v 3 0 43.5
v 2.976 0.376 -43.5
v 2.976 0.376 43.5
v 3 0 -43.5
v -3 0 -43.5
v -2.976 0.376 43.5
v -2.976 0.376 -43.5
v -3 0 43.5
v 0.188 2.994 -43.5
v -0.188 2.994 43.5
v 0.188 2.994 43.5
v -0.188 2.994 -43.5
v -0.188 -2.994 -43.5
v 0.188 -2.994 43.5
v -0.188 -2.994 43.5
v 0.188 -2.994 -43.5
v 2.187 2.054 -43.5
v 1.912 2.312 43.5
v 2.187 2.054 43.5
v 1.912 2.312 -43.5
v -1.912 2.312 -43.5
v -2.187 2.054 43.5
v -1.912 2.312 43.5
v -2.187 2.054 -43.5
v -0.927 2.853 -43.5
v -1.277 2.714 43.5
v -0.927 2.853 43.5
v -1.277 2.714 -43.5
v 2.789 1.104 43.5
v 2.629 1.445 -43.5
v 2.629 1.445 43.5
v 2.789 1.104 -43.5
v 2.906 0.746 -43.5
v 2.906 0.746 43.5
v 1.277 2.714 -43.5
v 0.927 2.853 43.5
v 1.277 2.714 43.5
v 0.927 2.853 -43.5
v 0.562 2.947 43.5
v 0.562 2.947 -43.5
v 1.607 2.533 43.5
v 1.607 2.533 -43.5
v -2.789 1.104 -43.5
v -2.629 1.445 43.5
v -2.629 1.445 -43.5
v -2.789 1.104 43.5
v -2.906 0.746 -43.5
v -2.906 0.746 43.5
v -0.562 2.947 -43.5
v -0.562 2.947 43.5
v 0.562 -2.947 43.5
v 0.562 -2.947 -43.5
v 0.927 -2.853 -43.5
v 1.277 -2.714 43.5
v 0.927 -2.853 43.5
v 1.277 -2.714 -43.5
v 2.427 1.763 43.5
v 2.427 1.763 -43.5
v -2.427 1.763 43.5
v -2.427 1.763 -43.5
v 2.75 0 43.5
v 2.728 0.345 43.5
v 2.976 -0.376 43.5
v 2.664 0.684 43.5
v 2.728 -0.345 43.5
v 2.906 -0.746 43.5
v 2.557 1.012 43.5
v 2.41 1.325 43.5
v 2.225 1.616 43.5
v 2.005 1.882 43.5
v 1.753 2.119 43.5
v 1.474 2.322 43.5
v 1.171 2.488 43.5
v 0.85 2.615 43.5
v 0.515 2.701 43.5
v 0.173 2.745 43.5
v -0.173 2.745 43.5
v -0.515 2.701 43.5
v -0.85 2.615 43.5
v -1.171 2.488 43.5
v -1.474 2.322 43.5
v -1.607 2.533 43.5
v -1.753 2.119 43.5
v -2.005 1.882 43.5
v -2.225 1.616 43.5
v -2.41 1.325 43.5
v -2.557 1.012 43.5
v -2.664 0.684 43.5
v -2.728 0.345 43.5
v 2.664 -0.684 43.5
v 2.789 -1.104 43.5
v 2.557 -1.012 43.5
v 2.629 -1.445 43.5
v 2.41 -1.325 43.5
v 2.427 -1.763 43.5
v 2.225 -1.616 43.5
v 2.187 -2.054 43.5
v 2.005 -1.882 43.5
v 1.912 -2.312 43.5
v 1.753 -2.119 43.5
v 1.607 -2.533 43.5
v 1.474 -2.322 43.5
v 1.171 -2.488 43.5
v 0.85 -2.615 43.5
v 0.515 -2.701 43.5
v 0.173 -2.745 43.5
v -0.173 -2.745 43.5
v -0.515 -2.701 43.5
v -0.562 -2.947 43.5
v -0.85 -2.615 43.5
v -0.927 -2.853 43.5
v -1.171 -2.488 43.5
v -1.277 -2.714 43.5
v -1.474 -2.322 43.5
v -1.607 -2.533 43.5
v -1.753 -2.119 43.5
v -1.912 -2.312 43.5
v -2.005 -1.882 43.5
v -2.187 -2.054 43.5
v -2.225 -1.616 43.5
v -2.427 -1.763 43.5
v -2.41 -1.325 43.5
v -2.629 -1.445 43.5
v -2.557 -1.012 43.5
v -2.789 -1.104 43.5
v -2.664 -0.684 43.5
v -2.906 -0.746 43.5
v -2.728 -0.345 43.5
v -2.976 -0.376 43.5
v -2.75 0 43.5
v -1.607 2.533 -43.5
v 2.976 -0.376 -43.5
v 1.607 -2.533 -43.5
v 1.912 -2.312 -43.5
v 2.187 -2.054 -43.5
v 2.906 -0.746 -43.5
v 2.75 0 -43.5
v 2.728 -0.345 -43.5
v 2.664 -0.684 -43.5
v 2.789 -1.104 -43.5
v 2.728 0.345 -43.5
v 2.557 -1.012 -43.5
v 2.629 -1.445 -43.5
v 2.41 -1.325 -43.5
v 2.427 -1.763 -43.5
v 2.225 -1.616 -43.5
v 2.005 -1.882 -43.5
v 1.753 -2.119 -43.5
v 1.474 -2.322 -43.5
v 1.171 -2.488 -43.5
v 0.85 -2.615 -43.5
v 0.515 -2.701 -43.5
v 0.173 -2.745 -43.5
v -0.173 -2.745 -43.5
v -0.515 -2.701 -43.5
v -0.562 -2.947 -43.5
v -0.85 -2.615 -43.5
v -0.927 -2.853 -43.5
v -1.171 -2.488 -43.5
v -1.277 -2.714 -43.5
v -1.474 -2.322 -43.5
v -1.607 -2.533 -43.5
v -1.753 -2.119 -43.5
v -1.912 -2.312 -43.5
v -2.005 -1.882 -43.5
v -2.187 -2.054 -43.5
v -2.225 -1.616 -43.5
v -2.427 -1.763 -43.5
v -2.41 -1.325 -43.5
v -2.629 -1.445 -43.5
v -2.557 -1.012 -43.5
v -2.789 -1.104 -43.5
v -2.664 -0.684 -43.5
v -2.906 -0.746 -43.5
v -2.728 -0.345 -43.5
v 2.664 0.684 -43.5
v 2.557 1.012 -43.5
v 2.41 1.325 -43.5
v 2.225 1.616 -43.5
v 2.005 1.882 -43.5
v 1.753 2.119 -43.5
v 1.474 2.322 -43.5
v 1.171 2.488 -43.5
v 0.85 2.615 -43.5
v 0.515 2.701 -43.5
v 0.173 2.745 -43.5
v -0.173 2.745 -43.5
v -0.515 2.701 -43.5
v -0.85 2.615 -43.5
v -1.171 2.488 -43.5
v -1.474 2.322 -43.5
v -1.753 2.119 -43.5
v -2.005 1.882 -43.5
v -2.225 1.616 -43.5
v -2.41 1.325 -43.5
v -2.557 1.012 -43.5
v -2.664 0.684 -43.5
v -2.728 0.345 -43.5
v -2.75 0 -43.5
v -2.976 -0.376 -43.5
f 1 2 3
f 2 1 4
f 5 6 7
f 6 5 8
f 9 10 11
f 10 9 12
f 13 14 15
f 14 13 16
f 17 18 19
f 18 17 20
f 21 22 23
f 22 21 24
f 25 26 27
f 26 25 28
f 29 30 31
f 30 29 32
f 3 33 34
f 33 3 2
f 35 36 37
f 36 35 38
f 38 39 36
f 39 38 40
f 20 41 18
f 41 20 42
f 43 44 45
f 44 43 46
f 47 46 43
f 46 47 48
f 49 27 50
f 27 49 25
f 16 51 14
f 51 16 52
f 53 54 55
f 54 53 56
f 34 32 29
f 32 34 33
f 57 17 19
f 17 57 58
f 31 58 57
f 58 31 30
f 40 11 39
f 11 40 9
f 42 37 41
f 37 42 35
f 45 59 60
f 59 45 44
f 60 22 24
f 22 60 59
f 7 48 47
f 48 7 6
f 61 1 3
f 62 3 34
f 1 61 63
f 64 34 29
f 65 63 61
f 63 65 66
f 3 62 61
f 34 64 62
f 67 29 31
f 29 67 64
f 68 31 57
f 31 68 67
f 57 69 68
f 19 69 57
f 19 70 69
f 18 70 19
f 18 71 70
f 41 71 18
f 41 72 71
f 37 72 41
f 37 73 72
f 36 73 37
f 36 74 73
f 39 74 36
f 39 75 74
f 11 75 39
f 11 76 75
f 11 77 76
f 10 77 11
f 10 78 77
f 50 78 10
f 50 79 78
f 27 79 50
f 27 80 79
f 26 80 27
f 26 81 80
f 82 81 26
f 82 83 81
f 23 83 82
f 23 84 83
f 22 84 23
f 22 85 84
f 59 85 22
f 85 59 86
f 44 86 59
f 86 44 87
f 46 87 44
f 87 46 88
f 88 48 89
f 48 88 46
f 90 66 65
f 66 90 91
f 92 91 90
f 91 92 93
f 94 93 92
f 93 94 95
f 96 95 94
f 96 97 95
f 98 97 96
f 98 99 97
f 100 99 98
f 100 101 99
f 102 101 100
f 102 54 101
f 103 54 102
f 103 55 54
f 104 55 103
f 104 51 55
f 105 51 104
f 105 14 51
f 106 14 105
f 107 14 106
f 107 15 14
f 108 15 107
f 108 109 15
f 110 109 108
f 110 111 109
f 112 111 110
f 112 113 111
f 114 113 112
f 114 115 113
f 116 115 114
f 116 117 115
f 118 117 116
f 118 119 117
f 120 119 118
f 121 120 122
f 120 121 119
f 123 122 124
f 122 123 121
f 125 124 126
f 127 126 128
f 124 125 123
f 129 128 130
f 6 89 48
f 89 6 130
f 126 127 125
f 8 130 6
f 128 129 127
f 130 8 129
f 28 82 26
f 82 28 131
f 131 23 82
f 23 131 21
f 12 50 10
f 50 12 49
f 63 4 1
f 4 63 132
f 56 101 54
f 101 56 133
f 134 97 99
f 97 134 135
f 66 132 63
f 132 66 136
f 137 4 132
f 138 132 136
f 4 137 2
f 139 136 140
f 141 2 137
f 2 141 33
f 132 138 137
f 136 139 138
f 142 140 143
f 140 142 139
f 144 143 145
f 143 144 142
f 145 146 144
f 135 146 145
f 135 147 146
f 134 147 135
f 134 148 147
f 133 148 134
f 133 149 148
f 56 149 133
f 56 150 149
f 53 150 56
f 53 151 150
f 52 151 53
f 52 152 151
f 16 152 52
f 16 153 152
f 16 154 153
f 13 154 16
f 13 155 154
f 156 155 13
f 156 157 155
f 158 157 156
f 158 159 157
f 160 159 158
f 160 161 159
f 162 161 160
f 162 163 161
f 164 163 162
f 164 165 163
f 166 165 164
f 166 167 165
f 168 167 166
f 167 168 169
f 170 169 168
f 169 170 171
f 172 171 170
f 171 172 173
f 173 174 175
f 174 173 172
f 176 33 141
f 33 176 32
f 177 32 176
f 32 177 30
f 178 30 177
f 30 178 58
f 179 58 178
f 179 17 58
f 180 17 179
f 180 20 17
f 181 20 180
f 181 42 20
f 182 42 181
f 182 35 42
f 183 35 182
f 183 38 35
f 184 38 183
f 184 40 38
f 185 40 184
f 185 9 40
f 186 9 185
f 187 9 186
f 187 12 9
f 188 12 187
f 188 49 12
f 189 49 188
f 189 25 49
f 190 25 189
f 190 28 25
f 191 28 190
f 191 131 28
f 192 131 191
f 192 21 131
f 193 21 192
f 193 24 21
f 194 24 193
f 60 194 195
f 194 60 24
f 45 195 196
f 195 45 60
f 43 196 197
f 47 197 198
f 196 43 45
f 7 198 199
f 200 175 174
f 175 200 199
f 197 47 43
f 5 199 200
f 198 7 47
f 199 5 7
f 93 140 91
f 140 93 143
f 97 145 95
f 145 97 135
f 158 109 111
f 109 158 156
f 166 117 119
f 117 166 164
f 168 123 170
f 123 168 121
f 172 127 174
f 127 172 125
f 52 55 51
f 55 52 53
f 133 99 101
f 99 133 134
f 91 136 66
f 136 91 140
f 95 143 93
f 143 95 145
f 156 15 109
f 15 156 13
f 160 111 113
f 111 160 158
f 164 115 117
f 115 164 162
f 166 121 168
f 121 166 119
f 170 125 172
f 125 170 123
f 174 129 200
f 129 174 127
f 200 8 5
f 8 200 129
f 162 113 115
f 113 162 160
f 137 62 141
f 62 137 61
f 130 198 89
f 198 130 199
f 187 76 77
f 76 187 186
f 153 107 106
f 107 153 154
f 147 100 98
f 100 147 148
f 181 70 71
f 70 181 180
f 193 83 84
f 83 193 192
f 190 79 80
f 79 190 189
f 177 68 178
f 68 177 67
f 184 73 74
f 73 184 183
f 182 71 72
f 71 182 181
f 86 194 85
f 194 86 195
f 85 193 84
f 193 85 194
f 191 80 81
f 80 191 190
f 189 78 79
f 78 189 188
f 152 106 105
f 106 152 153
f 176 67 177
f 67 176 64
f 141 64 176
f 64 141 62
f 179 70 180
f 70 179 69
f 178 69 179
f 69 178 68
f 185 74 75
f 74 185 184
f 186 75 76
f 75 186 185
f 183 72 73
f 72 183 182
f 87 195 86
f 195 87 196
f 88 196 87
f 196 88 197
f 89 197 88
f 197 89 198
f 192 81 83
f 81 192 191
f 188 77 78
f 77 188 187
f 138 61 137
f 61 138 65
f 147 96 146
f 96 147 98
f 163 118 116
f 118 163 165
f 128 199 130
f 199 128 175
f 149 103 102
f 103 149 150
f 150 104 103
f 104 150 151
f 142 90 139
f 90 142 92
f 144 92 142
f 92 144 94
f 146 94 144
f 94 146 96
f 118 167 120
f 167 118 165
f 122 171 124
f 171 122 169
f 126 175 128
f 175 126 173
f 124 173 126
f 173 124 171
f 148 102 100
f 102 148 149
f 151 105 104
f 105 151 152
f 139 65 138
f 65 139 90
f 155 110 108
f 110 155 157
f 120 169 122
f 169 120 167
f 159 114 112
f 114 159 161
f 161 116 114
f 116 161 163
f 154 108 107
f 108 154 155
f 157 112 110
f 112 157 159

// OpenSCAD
$fn = 50;


difference() {
	union() {
		translate(v = [0, 0, -43.5000000000]) {
			cylinder(h = 87, r = 3.0000000000);
		}
	}
	union() {
		translate(v = [0, 0, -100.0000000000]) {
			cylinder(h = 200, r = 2.7500000000);
		}
	}
}
